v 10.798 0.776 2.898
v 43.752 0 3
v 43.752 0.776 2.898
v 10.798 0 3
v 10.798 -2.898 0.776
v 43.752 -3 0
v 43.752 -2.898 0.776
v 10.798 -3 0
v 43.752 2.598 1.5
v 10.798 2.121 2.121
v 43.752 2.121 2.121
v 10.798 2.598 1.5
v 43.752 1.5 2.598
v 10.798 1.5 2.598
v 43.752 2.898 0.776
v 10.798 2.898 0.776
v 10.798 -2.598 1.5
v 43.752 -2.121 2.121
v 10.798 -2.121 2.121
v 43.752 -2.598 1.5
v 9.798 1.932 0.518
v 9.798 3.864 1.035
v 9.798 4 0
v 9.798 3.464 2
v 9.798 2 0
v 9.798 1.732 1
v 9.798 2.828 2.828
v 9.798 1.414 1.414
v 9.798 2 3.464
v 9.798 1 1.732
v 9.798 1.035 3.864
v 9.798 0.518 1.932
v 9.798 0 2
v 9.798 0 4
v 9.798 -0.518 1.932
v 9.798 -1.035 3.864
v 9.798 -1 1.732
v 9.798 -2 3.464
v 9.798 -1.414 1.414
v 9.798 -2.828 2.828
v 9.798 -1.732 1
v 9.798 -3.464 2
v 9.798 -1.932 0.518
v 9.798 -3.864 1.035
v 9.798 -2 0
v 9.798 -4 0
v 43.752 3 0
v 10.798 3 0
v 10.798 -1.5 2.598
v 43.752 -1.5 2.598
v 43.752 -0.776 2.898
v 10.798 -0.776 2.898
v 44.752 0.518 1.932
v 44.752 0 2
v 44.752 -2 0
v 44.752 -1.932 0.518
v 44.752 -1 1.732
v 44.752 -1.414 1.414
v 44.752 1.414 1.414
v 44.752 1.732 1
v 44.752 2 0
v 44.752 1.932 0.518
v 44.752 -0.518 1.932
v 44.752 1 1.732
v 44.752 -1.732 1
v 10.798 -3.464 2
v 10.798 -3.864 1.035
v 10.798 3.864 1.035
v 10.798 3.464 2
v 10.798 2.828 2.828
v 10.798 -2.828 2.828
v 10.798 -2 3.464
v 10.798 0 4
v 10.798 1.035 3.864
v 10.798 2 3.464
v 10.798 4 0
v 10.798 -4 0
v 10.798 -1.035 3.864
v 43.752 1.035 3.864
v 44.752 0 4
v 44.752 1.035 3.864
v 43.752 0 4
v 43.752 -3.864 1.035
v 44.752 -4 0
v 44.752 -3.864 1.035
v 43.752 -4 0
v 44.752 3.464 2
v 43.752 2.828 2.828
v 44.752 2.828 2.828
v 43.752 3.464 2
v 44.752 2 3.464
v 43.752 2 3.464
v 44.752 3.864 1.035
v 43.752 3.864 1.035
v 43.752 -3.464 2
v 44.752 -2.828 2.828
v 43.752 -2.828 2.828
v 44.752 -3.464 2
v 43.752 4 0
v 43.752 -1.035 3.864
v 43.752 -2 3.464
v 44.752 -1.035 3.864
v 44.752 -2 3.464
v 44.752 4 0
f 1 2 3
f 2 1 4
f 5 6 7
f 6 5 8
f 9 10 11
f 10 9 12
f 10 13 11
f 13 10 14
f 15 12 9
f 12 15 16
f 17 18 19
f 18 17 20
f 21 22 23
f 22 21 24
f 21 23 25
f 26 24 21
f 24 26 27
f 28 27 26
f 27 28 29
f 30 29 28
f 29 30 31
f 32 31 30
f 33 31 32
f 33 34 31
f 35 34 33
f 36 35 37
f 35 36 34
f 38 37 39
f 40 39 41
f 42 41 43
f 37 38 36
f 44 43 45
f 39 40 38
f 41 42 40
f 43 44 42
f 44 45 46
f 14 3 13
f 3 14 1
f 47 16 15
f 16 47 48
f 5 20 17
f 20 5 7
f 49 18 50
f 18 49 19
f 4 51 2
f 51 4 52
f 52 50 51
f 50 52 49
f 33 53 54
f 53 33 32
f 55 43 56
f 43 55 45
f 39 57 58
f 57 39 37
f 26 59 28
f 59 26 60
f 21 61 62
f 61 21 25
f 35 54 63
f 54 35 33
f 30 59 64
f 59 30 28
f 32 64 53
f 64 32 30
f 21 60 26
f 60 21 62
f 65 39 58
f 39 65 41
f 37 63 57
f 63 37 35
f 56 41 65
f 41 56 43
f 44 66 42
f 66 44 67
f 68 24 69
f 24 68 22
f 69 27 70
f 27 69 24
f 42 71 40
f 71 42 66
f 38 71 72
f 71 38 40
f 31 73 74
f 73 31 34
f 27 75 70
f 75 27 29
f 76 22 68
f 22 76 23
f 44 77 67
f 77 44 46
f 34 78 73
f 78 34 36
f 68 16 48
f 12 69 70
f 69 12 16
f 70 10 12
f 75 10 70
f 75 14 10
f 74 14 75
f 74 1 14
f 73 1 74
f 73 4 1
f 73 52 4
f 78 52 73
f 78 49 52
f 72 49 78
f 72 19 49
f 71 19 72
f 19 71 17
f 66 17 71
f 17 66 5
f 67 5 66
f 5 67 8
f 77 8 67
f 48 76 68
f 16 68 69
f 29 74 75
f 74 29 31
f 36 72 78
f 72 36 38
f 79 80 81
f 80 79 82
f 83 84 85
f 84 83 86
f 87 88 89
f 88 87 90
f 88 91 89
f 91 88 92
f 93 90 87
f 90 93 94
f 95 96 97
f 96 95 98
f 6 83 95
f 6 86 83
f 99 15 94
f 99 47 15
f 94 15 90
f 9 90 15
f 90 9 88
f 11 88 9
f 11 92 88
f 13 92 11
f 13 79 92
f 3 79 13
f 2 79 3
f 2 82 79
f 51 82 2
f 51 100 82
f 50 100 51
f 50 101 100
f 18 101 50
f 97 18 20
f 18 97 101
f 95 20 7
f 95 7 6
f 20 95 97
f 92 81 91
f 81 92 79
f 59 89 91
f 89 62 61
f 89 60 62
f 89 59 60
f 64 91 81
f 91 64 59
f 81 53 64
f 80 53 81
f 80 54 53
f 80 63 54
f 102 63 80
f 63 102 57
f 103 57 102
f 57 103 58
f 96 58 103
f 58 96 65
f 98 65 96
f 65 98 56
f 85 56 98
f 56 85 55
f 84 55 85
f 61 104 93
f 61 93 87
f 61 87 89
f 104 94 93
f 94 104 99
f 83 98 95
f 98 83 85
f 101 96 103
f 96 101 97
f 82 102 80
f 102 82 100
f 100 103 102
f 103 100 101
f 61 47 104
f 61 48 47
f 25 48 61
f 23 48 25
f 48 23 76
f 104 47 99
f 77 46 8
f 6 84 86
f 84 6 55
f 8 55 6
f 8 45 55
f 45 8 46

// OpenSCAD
// file: ../build_environments.scad
// build_environments.scad: modules to build level sections
//

module pool(diameter=10.0, wall_height=2.0, step_width=3.0, connections=[])
{
    difference() {
        union() {
        difference() {
            cylinder(h=0.5,r1=diameter+step_width,r2=diameter+step_width,$fn=48);
            translate([0,0,-0.1])
                cylinder(h=0.7,r1=diameter,r2=diameter,$fn=48);
        }
        difference() {
            cylinder(h=wall_height,r1=diameter+step_width+1.0,r2=diameter+step_width+1.0,$fn=48);
            translate([0,0,-0.1])
                cylinder(h=wall_height+0.2,r1=diameter+step_width,r2=diameter+step_width,$fn=48);
        }
        }
    
        for (c = connections)
        {
            rotate([0,90,0]) {
                angle = atan2(c[1],c[0]);
                rotate([-angle,0,0]) {
                    cylinder(h=diameter+5.0,r1=c[2],r2=c[2],$fn=48);
                }
            }
        }
    }
}

module straight(length=10.0, width=2.0, dy1=0.0, dy2=0.0, dz=0.0)
{
    dims = [0, 0, 0, 0, 0, (dz/length)];
    matrix = [
        [ 1, dims[0], dims[1], 0 ],
        [ dims[2], 1, dims[4], 0 ],
        [ dims[5], dims[3], 1, 0 ],
        [ 0, 0, 0, 1 ]
    ];
    multmatrix(matrix)
    difference() {
        translate([dy1,0,0])
        union() {
            rotate([0,90,0]) {
                difference() {
                    cylinder(h=(length-dy1-dy2),r1=width+1.0,r2=width+1.0,$fn=24);
                    translate([0,0,-0.1])
                        cylinder(h=(length-dy1-dy2+0.2),r1=width,r2=width,$fn=24);
                }
                difference() {
                    cylinder(h=1.0,r1=width+2.0,r2=width+2.0,$fn=24);
                    translate([0,0,-0.1])
                        cylinder(h=1.2,r1=width,r2=width,$fn=24);
                }
                translate([0,0,(length-dy1-dy2)-1.0]) {
                    difference() {
                        cylinder(h=1.0,r1=width+2.0,r2=width+2.0,$fn=24);
                        translate([0,0,-0.1])
                            cylinder(h=1.2,r1=width,r2=width,$fn=24);
                    }
                }
            }
        }
        translate([0,0,-(2*width+4.0)/2])
            cube([3*length,3*length,2*width+4.0],center=true);
    }
}

module curve(p0=[0,0], center=[0,0], dir=1, angle=0.0, width=2.0)
{
    radius = sqrt((p0[0]-center[0])*(p0[0]-center[0]) + (p0[1]-center[1])*(p0[1]-center[1]));
    if (dir == 0) {
        difference() {
            rotate([0,0,-90])
            difference() {
                rotate_extrude(angle = angle, convexity = 10, $fn=32)
                    translate([radius, 0, 0])
                        circle(r = width+1.0,$fn=24);
                rotate([0,0,-1.0])
                    rotate_extrude(angle = angle+2.0, convexity = 10, $fn=32)
                        translate([radius, 0, 0])
                            circle(r = width,$fn=24);
            }
            translate([0,0,-(2*width+4.0)/2])
                cube([5*radius,5*radius,2*width+4.0],center=true);
        }
    }
    else {
        difference() {
            rotate([0,0,90])
            difference() {
                rotate_extrude(angle = -angle, convexity = 10, $fn=32)
                    translate([radius, 0, 0])
                        circle(r = width+1.0,$fn=24);
                rotate([0,0,1.0])
                    rotate_extrude(angle = -angle-2.0, convexity = 10, $fn=32)
                        translate([radius, 0, 0])
                            circle(r = width,$fn=24);
            }
            translate([0,0,-(2*width+4.0)/2])
                cube([5*radius,5*radius,2*width+4.0],center=true);
        }
    }

}

// test pool
//pool(diameter=12.0000, wall_height=3.0000, step_width=3.0000, connections=[[0.0000,-26.0000,2.0000], [23.6074,0.0000,2.0000]]);

// test straight, slope
//straight(length=26.0000, width=2.0000, dy1=11.8322, dy2=6.7082, dz=0.0000);
//straight(length=29.1549, width=12.0000, dy1=0.0000, dy2=0.0000, dz=-15.0000);

// test curve
//curve(p0=[23.6074, 0.0000], center=[23.6074, 5.0000], dir=0, angle=60.1011, width=2.0000);
//curve(p0=[33.6426, 12.4219], center=[37.9771, 9.9295], dir=1, angle=120.4627, width=2.0000);
// main file
use <../build_environments.scad>;
straight(length=52.4976, width=2.0000, dy1=9.7980, dy2=7.7460, dz=0.0000);
